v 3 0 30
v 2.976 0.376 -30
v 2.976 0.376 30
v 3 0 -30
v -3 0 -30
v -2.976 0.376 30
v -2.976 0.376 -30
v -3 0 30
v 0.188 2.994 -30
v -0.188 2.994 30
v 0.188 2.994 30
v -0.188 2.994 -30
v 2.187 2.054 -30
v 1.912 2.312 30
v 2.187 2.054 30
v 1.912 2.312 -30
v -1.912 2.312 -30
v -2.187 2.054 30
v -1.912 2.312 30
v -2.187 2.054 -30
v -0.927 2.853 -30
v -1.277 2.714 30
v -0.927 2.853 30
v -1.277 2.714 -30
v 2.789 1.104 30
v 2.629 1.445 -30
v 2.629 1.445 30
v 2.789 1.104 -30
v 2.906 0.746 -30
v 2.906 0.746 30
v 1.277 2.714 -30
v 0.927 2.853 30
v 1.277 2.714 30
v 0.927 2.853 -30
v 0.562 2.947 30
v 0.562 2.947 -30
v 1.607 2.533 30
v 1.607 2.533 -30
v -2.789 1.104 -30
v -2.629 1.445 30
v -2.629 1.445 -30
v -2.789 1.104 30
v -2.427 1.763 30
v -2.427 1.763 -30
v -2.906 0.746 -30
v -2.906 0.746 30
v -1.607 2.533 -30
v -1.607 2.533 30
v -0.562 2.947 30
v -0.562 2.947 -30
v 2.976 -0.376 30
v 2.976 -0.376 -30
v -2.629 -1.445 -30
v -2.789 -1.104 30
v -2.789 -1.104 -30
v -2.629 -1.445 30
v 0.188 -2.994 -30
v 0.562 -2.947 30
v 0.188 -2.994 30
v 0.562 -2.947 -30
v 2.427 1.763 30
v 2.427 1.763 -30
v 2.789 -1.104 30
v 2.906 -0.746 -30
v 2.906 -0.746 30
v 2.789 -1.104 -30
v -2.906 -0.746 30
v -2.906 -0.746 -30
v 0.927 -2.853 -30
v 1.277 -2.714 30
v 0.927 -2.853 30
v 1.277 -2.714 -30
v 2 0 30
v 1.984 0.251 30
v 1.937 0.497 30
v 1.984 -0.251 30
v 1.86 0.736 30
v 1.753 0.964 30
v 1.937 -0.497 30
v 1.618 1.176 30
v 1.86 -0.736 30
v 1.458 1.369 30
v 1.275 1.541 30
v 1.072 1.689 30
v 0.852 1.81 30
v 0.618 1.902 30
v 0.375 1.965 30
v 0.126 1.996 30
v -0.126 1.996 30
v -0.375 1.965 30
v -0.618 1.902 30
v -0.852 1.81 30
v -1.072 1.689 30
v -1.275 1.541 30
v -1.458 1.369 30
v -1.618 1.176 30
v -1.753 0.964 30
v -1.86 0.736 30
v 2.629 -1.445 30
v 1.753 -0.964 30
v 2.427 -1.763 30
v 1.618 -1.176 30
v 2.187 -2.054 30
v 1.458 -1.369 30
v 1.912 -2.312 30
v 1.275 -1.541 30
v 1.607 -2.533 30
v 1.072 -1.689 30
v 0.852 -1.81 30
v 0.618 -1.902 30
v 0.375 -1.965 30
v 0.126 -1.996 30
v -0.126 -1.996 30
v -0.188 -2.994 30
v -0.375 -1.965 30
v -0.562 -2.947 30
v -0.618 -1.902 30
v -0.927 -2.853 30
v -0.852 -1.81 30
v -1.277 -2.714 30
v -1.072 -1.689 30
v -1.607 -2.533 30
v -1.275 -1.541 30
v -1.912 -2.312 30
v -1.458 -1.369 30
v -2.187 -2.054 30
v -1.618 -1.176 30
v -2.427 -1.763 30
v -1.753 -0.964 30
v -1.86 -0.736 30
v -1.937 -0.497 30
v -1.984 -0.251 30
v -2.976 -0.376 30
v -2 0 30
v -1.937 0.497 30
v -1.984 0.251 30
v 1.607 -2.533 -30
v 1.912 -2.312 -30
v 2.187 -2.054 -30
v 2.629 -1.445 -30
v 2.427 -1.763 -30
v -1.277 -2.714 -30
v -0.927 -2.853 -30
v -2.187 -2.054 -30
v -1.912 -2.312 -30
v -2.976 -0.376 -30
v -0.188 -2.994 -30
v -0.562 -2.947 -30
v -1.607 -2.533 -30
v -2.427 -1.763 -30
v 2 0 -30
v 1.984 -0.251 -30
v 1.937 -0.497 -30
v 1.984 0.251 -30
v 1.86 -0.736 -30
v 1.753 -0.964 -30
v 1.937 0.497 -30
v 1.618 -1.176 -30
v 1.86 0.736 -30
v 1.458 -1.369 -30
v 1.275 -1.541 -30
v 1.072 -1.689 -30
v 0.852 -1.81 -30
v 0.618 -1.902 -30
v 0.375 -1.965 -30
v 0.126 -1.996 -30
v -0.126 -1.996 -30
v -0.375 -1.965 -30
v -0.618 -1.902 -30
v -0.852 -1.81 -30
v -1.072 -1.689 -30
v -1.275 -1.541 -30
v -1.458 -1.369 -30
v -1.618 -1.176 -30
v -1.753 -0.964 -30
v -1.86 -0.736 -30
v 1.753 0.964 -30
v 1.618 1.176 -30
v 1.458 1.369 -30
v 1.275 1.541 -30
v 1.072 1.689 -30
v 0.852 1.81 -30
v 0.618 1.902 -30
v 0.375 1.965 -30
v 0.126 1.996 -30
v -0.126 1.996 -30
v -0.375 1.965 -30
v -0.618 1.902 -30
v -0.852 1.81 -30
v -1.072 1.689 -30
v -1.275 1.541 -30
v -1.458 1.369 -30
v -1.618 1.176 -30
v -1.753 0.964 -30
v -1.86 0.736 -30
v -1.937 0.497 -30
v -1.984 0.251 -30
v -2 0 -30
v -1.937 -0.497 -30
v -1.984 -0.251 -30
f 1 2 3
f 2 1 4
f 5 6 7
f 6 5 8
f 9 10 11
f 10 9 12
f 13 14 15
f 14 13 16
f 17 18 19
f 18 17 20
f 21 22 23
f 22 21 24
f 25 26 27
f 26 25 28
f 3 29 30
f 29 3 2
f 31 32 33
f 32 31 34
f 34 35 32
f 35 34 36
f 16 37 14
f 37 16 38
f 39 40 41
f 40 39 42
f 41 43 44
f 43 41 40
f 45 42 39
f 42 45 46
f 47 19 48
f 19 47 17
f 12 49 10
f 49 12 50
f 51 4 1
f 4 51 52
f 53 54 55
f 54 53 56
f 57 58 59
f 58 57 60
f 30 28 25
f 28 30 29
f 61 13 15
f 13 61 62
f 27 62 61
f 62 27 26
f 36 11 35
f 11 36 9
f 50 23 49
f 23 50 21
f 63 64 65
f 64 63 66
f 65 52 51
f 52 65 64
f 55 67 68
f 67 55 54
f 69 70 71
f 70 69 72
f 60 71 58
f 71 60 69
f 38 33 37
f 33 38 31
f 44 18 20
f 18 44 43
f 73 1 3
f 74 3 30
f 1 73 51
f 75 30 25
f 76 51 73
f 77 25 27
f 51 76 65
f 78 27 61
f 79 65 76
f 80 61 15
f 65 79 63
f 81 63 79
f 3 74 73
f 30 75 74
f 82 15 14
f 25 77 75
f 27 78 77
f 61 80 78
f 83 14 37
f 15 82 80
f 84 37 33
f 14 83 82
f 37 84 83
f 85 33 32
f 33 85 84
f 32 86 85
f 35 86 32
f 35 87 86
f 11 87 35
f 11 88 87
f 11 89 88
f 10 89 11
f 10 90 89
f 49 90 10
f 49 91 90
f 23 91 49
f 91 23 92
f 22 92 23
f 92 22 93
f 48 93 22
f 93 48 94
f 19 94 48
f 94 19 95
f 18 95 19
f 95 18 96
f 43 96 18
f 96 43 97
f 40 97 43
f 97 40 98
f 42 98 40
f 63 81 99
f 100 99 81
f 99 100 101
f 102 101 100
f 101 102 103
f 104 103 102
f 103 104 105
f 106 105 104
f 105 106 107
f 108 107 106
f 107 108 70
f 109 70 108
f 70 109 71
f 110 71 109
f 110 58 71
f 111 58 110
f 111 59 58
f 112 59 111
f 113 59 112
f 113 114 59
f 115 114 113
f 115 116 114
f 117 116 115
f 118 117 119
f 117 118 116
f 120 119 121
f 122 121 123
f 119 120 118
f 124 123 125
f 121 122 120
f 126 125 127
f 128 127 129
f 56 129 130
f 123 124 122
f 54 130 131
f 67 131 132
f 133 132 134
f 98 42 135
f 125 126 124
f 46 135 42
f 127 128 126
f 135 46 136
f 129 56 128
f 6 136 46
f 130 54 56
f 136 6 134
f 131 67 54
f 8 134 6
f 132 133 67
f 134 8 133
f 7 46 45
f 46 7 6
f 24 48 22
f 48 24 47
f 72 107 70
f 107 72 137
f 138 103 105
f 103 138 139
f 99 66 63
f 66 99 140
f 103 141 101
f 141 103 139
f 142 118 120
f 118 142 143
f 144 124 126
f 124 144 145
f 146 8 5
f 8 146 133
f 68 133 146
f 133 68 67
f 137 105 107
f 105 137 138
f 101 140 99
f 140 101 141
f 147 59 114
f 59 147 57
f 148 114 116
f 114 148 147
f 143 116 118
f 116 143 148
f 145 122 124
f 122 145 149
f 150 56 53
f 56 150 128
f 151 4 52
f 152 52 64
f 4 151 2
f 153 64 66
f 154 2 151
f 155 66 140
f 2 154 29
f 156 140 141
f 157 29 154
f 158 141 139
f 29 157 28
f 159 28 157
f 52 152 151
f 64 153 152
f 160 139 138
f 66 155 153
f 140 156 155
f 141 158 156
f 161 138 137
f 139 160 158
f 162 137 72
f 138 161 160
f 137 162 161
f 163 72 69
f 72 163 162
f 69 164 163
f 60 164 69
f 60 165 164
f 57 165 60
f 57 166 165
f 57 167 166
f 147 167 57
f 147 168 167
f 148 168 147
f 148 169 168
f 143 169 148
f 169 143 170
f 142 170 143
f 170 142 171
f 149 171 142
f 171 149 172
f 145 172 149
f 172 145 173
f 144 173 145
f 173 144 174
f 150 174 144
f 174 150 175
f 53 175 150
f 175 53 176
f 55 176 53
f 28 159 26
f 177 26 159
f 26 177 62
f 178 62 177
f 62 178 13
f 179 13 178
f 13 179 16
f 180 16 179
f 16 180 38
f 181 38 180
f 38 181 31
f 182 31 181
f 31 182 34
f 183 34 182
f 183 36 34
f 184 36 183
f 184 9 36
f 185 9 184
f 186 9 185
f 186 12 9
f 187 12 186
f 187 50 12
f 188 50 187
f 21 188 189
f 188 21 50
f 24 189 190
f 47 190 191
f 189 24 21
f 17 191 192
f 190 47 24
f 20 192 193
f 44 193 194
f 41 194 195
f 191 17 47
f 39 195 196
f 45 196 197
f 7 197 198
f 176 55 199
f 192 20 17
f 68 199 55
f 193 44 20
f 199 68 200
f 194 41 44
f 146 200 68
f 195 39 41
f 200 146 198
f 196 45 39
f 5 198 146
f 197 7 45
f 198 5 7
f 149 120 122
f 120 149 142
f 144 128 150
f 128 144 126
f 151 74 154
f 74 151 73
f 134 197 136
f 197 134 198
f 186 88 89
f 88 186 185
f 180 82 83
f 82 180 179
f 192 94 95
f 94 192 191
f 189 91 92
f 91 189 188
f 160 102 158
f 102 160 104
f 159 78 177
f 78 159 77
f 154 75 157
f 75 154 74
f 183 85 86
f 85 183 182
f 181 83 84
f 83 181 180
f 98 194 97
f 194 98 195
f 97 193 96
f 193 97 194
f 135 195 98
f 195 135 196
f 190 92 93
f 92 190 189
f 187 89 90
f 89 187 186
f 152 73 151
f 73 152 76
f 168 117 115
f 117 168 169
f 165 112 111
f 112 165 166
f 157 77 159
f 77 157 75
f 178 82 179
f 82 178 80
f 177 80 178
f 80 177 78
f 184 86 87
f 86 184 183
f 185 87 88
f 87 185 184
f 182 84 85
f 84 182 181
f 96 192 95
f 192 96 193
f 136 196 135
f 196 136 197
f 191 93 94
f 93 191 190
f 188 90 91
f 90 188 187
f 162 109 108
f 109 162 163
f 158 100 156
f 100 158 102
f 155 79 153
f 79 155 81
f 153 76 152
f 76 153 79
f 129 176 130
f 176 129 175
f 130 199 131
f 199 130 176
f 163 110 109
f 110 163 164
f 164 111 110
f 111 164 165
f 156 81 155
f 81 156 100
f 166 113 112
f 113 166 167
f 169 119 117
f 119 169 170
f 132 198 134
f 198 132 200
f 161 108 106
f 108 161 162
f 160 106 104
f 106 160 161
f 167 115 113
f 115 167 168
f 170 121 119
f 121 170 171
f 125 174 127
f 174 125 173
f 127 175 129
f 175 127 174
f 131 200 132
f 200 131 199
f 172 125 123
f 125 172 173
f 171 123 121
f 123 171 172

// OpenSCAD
$fn = 50;


difference() {
	union() {
		translate(v = [0, 0, -30.0000000000]) {
			cylinder(h = 60, r = 3.0000000000);
		}
	}
	union() {
		translate(v = [0, 0, -100.0000000000]) {
			cylinder(h = 200, r = 2.0000000000);
		}
	}
}
